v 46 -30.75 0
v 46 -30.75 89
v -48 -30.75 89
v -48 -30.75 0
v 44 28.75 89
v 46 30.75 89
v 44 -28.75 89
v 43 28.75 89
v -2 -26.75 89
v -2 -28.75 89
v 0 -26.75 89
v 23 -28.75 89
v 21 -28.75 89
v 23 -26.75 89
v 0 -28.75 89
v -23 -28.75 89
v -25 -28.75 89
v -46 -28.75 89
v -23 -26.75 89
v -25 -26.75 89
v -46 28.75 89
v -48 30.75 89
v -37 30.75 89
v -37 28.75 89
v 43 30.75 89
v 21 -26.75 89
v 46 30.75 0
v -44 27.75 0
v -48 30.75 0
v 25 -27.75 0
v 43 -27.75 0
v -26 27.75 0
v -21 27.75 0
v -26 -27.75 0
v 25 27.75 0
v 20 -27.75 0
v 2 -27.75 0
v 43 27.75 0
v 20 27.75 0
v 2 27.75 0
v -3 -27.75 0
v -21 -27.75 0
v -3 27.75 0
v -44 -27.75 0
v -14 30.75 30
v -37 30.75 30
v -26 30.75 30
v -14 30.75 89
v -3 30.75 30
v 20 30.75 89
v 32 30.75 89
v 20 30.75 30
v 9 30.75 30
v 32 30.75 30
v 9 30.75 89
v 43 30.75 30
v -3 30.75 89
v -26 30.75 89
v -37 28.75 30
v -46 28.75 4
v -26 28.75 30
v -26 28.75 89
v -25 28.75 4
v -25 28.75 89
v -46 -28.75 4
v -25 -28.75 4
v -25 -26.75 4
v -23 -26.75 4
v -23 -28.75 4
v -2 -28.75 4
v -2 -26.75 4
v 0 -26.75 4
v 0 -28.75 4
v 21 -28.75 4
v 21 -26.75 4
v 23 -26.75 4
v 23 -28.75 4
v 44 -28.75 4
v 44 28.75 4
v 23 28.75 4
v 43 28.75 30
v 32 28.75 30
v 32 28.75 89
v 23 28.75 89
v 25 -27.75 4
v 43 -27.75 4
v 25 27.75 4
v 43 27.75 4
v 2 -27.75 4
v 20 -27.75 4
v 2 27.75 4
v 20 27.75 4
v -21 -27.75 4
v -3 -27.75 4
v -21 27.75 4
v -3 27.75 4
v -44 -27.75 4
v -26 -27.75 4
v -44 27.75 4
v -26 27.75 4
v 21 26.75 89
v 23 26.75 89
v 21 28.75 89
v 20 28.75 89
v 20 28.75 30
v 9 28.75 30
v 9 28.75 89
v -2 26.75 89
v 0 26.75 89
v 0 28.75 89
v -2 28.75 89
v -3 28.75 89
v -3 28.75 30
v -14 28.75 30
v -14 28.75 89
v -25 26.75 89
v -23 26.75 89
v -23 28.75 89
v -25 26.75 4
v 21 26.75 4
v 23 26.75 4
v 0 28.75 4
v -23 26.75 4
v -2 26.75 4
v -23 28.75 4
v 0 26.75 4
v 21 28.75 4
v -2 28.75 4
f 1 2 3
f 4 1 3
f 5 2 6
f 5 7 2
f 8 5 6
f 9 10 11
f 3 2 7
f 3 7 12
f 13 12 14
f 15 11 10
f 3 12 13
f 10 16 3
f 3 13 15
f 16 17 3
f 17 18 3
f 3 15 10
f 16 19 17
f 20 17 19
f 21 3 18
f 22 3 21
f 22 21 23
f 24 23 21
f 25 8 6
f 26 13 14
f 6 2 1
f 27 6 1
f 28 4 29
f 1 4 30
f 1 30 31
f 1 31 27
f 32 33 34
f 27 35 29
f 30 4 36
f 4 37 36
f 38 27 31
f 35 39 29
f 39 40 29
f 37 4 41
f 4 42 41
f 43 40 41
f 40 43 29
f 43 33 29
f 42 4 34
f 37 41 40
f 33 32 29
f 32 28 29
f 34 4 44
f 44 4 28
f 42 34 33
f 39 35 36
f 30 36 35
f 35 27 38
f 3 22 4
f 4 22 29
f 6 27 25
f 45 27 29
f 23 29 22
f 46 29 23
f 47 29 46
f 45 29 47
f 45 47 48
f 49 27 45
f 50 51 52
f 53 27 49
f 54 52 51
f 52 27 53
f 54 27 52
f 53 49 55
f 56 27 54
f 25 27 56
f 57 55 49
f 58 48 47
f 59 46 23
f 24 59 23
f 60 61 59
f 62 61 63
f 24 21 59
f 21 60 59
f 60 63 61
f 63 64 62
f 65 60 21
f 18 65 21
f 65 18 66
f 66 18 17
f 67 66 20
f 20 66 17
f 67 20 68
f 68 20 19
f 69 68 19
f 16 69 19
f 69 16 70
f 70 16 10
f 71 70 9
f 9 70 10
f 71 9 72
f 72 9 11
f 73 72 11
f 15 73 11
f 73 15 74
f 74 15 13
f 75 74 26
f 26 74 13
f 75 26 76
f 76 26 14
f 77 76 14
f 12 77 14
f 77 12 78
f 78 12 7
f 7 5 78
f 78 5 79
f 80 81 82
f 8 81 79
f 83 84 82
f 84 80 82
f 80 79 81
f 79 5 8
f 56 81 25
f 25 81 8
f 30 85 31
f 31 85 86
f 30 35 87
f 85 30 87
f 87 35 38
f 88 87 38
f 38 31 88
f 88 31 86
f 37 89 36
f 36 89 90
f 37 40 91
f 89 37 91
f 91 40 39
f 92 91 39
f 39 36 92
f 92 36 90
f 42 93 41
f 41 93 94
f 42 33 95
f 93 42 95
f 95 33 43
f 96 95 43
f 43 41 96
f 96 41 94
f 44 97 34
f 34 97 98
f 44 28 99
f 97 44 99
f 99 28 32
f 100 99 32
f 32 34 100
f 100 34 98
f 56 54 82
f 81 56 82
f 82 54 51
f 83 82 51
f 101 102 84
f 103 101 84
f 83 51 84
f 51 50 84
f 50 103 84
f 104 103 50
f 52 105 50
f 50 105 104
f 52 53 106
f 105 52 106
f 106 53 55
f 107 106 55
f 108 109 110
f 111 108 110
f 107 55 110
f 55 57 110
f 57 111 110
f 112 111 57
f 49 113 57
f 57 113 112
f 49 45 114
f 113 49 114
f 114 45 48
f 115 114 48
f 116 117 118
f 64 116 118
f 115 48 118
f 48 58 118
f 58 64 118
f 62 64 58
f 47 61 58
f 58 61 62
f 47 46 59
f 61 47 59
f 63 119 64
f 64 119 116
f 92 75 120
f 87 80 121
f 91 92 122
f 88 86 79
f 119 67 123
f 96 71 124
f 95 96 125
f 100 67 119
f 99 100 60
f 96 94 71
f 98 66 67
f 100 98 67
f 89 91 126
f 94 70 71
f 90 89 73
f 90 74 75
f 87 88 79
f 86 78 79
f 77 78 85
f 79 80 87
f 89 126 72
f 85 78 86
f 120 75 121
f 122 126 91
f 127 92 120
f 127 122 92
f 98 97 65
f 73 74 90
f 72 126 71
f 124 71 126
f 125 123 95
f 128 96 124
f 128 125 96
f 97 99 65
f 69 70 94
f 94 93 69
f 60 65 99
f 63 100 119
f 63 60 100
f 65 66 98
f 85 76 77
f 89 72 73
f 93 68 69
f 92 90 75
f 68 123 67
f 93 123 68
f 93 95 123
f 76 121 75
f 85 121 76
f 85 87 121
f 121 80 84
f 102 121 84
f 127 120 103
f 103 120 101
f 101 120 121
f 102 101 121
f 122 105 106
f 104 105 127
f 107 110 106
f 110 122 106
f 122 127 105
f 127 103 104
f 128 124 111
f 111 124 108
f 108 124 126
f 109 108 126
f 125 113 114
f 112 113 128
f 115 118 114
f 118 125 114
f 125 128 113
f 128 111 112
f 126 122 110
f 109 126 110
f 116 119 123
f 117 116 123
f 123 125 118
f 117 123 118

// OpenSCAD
/* [Global] */
//how many raspis to stack on each other
rack_height=4; //[1:10]


/* [Hidden] */
rpi_width=57.5;
rpi_length=87;
u_height=23;
wall=2;
ledge=2;
port_height=11;
port_len=61;

module rack_floor(){
cube([rpi_width+2*wall,rpi_length+wall,wall]);
}

module one_u(){
 difference(){
	cube([rpi_width+2*wall,rpi_length+wall,u_height]);
 // cut out main area
	translate([wall,-wall,wall])cube([rpi_width,rpi_length,u_height]);
  //cut floor
  translate([wall+ledge,-wall,-wall])cube([rpi_width-2*ledge,rpi_length,3*wall]);

  //back
	translate([wall+1,rpi_length-2*wall,ledge+1])cube([rpi_width-2,5*wall,u_height-1-2*wall]);
  //side ports
  translate([rpi_width,-wall,wall+1])cube([5*wall,port_len,port_height]);
 }
}

module raspi_rack(){
	rack_floor();
	for(i=[1:rack_height]){
		translate([0,0,(i-1)*u_height])one_u();
	}
	//roof
	translate([0,0,rack_height*u_height])rack_floor();
}

//rotate & center
translate([(rack_height*u_height)/2,-(rpi_width+2*wall)/2,rpi_length+wall])rotate([-90,0,90])raspi_rack();
